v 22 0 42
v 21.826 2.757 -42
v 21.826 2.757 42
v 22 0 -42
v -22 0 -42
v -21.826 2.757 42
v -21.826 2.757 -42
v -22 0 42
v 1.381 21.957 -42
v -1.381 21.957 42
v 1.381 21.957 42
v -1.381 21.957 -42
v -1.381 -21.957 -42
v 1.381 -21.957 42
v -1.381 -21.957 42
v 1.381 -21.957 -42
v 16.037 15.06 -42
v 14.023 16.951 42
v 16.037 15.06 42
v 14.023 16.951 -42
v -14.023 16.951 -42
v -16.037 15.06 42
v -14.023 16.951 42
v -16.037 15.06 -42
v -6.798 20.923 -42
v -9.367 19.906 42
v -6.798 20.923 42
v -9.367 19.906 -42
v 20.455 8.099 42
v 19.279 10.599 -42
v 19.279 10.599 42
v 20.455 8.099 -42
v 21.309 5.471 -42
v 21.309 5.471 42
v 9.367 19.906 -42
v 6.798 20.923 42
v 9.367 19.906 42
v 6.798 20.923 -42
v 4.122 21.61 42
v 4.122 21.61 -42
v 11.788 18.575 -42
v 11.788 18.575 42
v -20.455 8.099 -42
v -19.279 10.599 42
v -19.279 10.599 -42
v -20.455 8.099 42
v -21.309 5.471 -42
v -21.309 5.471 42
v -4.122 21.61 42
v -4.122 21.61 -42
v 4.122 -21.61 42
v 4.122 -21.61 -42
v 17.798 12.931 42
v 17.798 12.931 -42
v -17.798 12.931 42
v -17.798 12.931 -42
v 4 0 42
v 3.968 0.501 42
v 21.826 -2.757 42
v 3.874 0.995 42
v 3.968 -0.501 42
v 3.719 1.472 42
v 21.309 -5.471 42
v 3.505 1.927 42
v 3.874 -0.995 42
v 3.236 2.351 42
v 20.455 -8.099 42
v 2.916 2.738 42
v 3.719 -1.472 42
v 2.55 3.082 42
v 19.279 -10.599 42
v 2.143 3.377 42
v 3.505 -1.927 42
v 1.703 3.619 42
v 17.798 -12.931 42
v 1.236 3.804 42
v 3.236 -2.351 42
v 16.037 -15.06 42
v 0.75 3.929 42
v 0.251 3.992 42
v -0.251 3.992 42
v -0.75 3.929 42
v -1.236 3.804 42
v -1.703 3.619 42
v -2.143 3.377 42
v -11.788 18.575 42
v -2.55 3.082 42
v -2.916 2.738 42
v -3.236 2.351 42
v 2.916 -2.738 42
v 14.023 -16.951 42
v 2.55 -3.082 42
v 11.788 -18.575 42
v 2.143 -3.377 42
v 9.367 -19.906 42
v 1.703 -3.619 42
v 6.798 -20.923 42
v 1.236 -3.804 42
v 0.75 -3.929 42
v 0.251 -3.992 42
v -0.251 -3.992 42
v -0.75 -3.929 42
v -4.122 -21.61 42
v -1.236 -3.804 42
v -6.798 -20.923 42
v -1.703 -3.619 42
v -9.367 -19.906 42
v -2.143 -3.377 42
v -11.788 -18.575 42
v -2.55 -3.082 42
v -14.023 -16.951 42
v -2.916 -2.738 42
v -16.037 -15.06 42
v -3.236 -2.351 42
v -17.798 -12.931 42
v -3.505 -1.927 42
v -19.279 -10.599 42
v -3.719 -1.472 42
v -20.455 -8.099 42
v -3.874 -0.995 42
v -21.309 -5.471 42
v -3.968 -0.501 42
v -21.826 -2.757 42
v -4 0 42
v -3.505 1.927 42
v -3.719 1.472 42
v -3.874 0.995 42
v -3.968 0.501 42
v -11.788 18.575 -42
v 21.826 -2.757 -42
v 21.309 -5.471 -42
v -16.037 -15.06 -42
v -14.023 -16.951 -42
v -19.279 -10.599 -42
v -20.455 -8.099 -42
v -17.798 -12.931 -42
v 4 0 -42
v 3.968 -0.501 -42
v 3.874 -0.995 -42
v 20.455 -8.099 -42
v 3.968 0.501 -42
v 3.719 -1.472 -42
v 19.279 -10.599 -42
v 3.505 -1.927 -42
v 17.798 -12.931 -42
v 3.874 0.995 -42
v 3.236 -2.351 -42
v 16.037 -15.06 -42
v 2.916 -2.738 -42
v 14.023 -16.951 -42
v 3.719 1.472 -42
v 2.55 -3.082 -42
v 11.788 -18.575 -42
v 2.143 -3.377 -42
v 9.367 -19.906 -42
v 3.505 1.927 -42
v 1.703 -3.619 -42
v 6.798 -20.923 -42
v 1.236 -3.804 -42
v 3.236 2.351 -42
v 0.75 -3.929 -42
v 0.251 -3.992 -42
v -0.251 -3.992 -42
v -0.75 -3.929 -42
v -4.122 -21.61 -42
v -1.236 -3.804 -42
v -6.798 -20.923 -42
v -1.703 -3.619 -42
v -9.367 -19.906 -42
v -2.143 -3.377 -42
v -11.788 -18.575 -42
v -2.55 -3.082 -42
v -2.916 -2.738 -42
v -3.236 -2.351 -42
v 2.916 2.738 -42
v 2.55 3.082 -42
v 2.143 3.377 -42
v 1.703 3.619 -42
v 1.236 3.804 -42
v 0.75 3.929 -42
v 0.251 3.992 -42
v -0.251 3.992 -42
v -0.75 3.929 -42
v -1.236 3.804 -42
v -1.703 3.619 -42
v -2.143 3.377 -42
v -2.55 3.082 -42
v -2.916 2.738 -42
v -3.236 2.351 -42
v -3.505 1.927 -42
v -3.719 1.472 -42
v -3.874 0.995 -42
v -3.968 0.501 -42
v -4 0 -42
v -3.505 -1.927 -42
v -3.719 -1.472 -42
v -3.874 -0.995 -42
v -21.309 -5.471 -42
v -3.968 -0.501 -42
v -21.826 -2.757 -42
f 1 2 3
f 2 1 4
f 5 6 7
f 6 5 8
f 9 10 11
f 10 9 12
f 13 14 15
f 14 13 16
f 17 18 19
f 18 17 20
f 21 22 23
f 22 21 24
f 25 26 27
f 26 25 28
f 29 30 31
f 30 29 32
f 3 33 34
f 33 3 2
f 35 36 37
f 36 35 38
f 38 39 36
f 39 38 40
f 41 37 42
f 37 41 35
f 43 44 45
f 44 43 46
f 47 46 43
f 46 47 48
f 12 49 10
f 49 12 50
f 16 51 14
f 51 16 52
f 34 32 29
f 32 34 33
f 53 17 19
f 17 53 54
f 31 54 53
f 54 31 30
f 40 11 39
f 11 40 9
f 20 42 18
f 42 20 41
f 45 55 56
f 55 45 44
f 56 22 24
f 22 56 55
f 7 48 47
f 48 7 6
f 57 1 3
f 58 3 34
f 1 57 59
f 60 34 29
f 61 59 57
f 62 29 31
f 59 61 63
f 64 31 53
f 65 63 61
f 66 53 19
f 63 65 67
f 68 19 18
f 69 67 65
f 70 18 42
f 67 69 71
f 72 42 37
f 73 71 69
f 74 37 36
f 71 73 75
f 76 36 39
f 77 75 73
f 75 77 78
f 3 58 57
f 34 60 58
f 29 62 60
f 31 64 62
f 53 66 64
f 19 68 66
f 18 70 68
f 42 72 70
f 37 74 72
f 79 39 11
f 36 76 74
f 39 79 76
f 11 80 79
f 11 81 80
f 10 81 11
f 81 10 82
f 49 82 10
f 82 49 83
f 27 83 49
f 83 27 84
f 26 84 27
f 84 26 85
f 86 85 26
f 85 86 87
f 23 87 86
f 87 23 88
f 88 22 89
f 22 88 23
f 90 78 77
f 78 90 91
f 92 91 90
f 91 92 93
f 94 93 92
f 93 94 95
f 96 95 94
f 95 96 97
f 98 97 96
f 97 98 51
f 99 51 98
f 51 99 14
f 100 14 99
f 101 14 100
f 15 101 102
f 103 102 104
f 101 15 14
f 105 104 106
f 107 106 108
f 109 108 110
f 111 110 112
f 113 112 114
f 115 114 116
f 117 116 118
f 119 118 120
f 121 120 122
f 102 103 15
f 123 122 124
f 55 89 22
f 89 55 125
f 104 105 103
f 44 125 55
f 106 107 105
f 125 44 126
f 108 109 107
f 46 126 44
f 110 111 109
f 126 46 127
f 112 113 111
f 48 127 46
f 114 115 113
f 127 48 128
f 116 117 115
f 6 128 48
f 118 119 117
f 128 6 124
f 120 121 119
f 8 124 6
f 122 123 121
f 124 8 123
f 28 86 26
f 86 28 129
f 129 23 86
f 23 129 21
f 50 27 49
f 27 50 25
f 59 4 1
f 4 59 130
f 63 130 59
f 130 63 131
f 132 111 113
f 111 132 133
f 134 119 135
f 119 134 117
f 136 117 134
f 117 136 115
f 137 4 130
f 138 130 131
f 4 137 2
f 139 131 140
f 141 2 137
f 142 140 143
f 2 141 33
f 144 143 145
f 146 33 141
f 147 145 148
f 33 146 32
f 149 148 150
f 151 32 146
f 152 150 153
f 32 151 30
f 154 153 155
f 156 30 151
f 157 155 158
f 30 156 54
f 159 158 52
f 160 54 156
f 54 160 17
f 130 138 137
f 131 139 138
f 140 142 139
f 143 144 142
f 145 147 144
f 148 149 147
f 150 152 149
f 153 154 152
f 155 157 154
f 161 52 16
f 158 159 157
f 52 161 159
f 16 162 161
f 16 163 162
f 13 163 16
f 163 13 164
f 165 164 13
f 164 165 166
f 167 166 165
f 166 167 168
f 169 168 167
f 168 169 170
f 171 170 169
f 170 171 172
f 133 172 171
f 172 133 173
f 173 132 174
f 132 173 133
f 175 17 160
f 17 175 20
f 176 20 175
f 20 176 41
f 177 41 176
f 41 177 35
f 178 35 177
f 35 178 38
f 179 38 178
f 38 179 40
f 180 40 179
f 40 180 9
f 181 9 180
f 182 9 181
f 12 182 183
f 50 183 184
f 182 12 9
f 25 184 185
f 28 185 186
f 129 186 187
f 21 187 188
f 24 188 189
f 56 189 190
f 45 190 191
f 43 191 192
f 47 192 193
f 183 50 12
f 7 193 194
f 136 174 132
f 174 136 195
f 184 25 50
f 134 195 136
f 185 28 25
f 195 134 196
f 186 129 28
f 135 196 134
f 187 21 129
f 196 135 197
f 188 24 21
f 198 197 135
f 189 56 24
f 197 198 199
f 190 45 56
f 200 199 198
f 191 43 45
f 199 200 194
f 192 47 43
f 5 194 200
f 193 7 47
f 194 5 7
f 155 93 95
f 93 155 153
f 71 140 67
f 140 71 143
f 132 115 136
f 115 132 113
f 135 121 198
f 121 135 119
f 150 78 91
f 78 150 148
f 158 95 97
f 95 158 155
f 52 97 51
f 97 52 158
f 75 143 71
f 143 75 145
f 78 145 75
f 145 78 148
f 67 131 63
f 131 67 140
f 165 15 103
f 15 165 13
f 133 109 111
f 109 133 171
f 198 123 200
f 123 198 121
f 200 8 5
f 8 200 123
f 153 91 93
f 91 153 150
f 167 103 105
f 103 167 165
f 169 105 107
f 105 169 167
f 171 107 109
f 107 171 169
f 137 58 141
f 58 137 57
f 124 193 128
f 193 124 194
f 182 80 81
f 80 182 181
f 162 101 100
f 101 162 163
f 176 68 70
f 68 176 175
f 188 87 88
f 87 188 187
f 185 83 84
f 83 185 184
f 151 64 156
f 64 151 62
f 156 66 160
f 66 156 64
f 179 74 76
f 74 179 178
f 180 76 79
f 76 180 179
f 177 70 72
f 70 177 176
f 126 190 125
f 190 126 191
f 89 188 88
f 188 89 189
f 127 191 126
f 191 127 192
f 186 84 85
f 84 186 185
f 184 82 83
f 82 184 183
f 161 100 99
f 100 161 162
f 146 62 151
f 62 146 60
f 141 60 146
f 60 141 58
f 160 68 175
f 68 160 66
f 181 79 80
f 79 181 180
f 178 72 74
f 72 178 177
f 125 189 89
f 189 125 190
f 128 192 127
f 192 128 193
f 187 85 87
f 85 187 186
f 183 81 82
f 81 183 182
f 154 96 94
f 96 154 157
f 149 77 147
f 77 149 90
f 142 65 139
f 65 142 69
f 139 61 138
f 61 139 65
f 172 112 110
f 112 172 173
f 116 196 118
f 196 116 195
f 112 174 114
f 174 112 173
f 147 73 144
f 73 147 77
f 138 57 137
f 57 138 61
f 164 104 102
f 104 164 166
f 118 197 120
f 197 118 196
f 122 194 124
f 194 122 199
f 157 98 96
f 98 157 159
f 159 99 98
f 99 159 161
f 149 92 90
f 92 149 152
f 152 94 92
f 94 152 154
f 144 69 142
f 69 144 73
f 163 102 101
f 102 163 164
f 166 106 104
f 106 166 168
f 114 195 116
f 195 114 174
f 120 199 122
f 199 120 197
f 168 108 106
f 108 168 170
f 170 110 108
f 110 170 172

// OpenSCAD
$fn = 50;


difference() {
	union() {
		translate(v = [0, 0, -42.0000000000]) {
			cylinder(h = 84, r = 22.0000000000);
		}
	}
	union() {
		translate(v = [0, 0, -100.0000000000]) {
			cylinder(h = 200, r = 4);
		}
	}
}
